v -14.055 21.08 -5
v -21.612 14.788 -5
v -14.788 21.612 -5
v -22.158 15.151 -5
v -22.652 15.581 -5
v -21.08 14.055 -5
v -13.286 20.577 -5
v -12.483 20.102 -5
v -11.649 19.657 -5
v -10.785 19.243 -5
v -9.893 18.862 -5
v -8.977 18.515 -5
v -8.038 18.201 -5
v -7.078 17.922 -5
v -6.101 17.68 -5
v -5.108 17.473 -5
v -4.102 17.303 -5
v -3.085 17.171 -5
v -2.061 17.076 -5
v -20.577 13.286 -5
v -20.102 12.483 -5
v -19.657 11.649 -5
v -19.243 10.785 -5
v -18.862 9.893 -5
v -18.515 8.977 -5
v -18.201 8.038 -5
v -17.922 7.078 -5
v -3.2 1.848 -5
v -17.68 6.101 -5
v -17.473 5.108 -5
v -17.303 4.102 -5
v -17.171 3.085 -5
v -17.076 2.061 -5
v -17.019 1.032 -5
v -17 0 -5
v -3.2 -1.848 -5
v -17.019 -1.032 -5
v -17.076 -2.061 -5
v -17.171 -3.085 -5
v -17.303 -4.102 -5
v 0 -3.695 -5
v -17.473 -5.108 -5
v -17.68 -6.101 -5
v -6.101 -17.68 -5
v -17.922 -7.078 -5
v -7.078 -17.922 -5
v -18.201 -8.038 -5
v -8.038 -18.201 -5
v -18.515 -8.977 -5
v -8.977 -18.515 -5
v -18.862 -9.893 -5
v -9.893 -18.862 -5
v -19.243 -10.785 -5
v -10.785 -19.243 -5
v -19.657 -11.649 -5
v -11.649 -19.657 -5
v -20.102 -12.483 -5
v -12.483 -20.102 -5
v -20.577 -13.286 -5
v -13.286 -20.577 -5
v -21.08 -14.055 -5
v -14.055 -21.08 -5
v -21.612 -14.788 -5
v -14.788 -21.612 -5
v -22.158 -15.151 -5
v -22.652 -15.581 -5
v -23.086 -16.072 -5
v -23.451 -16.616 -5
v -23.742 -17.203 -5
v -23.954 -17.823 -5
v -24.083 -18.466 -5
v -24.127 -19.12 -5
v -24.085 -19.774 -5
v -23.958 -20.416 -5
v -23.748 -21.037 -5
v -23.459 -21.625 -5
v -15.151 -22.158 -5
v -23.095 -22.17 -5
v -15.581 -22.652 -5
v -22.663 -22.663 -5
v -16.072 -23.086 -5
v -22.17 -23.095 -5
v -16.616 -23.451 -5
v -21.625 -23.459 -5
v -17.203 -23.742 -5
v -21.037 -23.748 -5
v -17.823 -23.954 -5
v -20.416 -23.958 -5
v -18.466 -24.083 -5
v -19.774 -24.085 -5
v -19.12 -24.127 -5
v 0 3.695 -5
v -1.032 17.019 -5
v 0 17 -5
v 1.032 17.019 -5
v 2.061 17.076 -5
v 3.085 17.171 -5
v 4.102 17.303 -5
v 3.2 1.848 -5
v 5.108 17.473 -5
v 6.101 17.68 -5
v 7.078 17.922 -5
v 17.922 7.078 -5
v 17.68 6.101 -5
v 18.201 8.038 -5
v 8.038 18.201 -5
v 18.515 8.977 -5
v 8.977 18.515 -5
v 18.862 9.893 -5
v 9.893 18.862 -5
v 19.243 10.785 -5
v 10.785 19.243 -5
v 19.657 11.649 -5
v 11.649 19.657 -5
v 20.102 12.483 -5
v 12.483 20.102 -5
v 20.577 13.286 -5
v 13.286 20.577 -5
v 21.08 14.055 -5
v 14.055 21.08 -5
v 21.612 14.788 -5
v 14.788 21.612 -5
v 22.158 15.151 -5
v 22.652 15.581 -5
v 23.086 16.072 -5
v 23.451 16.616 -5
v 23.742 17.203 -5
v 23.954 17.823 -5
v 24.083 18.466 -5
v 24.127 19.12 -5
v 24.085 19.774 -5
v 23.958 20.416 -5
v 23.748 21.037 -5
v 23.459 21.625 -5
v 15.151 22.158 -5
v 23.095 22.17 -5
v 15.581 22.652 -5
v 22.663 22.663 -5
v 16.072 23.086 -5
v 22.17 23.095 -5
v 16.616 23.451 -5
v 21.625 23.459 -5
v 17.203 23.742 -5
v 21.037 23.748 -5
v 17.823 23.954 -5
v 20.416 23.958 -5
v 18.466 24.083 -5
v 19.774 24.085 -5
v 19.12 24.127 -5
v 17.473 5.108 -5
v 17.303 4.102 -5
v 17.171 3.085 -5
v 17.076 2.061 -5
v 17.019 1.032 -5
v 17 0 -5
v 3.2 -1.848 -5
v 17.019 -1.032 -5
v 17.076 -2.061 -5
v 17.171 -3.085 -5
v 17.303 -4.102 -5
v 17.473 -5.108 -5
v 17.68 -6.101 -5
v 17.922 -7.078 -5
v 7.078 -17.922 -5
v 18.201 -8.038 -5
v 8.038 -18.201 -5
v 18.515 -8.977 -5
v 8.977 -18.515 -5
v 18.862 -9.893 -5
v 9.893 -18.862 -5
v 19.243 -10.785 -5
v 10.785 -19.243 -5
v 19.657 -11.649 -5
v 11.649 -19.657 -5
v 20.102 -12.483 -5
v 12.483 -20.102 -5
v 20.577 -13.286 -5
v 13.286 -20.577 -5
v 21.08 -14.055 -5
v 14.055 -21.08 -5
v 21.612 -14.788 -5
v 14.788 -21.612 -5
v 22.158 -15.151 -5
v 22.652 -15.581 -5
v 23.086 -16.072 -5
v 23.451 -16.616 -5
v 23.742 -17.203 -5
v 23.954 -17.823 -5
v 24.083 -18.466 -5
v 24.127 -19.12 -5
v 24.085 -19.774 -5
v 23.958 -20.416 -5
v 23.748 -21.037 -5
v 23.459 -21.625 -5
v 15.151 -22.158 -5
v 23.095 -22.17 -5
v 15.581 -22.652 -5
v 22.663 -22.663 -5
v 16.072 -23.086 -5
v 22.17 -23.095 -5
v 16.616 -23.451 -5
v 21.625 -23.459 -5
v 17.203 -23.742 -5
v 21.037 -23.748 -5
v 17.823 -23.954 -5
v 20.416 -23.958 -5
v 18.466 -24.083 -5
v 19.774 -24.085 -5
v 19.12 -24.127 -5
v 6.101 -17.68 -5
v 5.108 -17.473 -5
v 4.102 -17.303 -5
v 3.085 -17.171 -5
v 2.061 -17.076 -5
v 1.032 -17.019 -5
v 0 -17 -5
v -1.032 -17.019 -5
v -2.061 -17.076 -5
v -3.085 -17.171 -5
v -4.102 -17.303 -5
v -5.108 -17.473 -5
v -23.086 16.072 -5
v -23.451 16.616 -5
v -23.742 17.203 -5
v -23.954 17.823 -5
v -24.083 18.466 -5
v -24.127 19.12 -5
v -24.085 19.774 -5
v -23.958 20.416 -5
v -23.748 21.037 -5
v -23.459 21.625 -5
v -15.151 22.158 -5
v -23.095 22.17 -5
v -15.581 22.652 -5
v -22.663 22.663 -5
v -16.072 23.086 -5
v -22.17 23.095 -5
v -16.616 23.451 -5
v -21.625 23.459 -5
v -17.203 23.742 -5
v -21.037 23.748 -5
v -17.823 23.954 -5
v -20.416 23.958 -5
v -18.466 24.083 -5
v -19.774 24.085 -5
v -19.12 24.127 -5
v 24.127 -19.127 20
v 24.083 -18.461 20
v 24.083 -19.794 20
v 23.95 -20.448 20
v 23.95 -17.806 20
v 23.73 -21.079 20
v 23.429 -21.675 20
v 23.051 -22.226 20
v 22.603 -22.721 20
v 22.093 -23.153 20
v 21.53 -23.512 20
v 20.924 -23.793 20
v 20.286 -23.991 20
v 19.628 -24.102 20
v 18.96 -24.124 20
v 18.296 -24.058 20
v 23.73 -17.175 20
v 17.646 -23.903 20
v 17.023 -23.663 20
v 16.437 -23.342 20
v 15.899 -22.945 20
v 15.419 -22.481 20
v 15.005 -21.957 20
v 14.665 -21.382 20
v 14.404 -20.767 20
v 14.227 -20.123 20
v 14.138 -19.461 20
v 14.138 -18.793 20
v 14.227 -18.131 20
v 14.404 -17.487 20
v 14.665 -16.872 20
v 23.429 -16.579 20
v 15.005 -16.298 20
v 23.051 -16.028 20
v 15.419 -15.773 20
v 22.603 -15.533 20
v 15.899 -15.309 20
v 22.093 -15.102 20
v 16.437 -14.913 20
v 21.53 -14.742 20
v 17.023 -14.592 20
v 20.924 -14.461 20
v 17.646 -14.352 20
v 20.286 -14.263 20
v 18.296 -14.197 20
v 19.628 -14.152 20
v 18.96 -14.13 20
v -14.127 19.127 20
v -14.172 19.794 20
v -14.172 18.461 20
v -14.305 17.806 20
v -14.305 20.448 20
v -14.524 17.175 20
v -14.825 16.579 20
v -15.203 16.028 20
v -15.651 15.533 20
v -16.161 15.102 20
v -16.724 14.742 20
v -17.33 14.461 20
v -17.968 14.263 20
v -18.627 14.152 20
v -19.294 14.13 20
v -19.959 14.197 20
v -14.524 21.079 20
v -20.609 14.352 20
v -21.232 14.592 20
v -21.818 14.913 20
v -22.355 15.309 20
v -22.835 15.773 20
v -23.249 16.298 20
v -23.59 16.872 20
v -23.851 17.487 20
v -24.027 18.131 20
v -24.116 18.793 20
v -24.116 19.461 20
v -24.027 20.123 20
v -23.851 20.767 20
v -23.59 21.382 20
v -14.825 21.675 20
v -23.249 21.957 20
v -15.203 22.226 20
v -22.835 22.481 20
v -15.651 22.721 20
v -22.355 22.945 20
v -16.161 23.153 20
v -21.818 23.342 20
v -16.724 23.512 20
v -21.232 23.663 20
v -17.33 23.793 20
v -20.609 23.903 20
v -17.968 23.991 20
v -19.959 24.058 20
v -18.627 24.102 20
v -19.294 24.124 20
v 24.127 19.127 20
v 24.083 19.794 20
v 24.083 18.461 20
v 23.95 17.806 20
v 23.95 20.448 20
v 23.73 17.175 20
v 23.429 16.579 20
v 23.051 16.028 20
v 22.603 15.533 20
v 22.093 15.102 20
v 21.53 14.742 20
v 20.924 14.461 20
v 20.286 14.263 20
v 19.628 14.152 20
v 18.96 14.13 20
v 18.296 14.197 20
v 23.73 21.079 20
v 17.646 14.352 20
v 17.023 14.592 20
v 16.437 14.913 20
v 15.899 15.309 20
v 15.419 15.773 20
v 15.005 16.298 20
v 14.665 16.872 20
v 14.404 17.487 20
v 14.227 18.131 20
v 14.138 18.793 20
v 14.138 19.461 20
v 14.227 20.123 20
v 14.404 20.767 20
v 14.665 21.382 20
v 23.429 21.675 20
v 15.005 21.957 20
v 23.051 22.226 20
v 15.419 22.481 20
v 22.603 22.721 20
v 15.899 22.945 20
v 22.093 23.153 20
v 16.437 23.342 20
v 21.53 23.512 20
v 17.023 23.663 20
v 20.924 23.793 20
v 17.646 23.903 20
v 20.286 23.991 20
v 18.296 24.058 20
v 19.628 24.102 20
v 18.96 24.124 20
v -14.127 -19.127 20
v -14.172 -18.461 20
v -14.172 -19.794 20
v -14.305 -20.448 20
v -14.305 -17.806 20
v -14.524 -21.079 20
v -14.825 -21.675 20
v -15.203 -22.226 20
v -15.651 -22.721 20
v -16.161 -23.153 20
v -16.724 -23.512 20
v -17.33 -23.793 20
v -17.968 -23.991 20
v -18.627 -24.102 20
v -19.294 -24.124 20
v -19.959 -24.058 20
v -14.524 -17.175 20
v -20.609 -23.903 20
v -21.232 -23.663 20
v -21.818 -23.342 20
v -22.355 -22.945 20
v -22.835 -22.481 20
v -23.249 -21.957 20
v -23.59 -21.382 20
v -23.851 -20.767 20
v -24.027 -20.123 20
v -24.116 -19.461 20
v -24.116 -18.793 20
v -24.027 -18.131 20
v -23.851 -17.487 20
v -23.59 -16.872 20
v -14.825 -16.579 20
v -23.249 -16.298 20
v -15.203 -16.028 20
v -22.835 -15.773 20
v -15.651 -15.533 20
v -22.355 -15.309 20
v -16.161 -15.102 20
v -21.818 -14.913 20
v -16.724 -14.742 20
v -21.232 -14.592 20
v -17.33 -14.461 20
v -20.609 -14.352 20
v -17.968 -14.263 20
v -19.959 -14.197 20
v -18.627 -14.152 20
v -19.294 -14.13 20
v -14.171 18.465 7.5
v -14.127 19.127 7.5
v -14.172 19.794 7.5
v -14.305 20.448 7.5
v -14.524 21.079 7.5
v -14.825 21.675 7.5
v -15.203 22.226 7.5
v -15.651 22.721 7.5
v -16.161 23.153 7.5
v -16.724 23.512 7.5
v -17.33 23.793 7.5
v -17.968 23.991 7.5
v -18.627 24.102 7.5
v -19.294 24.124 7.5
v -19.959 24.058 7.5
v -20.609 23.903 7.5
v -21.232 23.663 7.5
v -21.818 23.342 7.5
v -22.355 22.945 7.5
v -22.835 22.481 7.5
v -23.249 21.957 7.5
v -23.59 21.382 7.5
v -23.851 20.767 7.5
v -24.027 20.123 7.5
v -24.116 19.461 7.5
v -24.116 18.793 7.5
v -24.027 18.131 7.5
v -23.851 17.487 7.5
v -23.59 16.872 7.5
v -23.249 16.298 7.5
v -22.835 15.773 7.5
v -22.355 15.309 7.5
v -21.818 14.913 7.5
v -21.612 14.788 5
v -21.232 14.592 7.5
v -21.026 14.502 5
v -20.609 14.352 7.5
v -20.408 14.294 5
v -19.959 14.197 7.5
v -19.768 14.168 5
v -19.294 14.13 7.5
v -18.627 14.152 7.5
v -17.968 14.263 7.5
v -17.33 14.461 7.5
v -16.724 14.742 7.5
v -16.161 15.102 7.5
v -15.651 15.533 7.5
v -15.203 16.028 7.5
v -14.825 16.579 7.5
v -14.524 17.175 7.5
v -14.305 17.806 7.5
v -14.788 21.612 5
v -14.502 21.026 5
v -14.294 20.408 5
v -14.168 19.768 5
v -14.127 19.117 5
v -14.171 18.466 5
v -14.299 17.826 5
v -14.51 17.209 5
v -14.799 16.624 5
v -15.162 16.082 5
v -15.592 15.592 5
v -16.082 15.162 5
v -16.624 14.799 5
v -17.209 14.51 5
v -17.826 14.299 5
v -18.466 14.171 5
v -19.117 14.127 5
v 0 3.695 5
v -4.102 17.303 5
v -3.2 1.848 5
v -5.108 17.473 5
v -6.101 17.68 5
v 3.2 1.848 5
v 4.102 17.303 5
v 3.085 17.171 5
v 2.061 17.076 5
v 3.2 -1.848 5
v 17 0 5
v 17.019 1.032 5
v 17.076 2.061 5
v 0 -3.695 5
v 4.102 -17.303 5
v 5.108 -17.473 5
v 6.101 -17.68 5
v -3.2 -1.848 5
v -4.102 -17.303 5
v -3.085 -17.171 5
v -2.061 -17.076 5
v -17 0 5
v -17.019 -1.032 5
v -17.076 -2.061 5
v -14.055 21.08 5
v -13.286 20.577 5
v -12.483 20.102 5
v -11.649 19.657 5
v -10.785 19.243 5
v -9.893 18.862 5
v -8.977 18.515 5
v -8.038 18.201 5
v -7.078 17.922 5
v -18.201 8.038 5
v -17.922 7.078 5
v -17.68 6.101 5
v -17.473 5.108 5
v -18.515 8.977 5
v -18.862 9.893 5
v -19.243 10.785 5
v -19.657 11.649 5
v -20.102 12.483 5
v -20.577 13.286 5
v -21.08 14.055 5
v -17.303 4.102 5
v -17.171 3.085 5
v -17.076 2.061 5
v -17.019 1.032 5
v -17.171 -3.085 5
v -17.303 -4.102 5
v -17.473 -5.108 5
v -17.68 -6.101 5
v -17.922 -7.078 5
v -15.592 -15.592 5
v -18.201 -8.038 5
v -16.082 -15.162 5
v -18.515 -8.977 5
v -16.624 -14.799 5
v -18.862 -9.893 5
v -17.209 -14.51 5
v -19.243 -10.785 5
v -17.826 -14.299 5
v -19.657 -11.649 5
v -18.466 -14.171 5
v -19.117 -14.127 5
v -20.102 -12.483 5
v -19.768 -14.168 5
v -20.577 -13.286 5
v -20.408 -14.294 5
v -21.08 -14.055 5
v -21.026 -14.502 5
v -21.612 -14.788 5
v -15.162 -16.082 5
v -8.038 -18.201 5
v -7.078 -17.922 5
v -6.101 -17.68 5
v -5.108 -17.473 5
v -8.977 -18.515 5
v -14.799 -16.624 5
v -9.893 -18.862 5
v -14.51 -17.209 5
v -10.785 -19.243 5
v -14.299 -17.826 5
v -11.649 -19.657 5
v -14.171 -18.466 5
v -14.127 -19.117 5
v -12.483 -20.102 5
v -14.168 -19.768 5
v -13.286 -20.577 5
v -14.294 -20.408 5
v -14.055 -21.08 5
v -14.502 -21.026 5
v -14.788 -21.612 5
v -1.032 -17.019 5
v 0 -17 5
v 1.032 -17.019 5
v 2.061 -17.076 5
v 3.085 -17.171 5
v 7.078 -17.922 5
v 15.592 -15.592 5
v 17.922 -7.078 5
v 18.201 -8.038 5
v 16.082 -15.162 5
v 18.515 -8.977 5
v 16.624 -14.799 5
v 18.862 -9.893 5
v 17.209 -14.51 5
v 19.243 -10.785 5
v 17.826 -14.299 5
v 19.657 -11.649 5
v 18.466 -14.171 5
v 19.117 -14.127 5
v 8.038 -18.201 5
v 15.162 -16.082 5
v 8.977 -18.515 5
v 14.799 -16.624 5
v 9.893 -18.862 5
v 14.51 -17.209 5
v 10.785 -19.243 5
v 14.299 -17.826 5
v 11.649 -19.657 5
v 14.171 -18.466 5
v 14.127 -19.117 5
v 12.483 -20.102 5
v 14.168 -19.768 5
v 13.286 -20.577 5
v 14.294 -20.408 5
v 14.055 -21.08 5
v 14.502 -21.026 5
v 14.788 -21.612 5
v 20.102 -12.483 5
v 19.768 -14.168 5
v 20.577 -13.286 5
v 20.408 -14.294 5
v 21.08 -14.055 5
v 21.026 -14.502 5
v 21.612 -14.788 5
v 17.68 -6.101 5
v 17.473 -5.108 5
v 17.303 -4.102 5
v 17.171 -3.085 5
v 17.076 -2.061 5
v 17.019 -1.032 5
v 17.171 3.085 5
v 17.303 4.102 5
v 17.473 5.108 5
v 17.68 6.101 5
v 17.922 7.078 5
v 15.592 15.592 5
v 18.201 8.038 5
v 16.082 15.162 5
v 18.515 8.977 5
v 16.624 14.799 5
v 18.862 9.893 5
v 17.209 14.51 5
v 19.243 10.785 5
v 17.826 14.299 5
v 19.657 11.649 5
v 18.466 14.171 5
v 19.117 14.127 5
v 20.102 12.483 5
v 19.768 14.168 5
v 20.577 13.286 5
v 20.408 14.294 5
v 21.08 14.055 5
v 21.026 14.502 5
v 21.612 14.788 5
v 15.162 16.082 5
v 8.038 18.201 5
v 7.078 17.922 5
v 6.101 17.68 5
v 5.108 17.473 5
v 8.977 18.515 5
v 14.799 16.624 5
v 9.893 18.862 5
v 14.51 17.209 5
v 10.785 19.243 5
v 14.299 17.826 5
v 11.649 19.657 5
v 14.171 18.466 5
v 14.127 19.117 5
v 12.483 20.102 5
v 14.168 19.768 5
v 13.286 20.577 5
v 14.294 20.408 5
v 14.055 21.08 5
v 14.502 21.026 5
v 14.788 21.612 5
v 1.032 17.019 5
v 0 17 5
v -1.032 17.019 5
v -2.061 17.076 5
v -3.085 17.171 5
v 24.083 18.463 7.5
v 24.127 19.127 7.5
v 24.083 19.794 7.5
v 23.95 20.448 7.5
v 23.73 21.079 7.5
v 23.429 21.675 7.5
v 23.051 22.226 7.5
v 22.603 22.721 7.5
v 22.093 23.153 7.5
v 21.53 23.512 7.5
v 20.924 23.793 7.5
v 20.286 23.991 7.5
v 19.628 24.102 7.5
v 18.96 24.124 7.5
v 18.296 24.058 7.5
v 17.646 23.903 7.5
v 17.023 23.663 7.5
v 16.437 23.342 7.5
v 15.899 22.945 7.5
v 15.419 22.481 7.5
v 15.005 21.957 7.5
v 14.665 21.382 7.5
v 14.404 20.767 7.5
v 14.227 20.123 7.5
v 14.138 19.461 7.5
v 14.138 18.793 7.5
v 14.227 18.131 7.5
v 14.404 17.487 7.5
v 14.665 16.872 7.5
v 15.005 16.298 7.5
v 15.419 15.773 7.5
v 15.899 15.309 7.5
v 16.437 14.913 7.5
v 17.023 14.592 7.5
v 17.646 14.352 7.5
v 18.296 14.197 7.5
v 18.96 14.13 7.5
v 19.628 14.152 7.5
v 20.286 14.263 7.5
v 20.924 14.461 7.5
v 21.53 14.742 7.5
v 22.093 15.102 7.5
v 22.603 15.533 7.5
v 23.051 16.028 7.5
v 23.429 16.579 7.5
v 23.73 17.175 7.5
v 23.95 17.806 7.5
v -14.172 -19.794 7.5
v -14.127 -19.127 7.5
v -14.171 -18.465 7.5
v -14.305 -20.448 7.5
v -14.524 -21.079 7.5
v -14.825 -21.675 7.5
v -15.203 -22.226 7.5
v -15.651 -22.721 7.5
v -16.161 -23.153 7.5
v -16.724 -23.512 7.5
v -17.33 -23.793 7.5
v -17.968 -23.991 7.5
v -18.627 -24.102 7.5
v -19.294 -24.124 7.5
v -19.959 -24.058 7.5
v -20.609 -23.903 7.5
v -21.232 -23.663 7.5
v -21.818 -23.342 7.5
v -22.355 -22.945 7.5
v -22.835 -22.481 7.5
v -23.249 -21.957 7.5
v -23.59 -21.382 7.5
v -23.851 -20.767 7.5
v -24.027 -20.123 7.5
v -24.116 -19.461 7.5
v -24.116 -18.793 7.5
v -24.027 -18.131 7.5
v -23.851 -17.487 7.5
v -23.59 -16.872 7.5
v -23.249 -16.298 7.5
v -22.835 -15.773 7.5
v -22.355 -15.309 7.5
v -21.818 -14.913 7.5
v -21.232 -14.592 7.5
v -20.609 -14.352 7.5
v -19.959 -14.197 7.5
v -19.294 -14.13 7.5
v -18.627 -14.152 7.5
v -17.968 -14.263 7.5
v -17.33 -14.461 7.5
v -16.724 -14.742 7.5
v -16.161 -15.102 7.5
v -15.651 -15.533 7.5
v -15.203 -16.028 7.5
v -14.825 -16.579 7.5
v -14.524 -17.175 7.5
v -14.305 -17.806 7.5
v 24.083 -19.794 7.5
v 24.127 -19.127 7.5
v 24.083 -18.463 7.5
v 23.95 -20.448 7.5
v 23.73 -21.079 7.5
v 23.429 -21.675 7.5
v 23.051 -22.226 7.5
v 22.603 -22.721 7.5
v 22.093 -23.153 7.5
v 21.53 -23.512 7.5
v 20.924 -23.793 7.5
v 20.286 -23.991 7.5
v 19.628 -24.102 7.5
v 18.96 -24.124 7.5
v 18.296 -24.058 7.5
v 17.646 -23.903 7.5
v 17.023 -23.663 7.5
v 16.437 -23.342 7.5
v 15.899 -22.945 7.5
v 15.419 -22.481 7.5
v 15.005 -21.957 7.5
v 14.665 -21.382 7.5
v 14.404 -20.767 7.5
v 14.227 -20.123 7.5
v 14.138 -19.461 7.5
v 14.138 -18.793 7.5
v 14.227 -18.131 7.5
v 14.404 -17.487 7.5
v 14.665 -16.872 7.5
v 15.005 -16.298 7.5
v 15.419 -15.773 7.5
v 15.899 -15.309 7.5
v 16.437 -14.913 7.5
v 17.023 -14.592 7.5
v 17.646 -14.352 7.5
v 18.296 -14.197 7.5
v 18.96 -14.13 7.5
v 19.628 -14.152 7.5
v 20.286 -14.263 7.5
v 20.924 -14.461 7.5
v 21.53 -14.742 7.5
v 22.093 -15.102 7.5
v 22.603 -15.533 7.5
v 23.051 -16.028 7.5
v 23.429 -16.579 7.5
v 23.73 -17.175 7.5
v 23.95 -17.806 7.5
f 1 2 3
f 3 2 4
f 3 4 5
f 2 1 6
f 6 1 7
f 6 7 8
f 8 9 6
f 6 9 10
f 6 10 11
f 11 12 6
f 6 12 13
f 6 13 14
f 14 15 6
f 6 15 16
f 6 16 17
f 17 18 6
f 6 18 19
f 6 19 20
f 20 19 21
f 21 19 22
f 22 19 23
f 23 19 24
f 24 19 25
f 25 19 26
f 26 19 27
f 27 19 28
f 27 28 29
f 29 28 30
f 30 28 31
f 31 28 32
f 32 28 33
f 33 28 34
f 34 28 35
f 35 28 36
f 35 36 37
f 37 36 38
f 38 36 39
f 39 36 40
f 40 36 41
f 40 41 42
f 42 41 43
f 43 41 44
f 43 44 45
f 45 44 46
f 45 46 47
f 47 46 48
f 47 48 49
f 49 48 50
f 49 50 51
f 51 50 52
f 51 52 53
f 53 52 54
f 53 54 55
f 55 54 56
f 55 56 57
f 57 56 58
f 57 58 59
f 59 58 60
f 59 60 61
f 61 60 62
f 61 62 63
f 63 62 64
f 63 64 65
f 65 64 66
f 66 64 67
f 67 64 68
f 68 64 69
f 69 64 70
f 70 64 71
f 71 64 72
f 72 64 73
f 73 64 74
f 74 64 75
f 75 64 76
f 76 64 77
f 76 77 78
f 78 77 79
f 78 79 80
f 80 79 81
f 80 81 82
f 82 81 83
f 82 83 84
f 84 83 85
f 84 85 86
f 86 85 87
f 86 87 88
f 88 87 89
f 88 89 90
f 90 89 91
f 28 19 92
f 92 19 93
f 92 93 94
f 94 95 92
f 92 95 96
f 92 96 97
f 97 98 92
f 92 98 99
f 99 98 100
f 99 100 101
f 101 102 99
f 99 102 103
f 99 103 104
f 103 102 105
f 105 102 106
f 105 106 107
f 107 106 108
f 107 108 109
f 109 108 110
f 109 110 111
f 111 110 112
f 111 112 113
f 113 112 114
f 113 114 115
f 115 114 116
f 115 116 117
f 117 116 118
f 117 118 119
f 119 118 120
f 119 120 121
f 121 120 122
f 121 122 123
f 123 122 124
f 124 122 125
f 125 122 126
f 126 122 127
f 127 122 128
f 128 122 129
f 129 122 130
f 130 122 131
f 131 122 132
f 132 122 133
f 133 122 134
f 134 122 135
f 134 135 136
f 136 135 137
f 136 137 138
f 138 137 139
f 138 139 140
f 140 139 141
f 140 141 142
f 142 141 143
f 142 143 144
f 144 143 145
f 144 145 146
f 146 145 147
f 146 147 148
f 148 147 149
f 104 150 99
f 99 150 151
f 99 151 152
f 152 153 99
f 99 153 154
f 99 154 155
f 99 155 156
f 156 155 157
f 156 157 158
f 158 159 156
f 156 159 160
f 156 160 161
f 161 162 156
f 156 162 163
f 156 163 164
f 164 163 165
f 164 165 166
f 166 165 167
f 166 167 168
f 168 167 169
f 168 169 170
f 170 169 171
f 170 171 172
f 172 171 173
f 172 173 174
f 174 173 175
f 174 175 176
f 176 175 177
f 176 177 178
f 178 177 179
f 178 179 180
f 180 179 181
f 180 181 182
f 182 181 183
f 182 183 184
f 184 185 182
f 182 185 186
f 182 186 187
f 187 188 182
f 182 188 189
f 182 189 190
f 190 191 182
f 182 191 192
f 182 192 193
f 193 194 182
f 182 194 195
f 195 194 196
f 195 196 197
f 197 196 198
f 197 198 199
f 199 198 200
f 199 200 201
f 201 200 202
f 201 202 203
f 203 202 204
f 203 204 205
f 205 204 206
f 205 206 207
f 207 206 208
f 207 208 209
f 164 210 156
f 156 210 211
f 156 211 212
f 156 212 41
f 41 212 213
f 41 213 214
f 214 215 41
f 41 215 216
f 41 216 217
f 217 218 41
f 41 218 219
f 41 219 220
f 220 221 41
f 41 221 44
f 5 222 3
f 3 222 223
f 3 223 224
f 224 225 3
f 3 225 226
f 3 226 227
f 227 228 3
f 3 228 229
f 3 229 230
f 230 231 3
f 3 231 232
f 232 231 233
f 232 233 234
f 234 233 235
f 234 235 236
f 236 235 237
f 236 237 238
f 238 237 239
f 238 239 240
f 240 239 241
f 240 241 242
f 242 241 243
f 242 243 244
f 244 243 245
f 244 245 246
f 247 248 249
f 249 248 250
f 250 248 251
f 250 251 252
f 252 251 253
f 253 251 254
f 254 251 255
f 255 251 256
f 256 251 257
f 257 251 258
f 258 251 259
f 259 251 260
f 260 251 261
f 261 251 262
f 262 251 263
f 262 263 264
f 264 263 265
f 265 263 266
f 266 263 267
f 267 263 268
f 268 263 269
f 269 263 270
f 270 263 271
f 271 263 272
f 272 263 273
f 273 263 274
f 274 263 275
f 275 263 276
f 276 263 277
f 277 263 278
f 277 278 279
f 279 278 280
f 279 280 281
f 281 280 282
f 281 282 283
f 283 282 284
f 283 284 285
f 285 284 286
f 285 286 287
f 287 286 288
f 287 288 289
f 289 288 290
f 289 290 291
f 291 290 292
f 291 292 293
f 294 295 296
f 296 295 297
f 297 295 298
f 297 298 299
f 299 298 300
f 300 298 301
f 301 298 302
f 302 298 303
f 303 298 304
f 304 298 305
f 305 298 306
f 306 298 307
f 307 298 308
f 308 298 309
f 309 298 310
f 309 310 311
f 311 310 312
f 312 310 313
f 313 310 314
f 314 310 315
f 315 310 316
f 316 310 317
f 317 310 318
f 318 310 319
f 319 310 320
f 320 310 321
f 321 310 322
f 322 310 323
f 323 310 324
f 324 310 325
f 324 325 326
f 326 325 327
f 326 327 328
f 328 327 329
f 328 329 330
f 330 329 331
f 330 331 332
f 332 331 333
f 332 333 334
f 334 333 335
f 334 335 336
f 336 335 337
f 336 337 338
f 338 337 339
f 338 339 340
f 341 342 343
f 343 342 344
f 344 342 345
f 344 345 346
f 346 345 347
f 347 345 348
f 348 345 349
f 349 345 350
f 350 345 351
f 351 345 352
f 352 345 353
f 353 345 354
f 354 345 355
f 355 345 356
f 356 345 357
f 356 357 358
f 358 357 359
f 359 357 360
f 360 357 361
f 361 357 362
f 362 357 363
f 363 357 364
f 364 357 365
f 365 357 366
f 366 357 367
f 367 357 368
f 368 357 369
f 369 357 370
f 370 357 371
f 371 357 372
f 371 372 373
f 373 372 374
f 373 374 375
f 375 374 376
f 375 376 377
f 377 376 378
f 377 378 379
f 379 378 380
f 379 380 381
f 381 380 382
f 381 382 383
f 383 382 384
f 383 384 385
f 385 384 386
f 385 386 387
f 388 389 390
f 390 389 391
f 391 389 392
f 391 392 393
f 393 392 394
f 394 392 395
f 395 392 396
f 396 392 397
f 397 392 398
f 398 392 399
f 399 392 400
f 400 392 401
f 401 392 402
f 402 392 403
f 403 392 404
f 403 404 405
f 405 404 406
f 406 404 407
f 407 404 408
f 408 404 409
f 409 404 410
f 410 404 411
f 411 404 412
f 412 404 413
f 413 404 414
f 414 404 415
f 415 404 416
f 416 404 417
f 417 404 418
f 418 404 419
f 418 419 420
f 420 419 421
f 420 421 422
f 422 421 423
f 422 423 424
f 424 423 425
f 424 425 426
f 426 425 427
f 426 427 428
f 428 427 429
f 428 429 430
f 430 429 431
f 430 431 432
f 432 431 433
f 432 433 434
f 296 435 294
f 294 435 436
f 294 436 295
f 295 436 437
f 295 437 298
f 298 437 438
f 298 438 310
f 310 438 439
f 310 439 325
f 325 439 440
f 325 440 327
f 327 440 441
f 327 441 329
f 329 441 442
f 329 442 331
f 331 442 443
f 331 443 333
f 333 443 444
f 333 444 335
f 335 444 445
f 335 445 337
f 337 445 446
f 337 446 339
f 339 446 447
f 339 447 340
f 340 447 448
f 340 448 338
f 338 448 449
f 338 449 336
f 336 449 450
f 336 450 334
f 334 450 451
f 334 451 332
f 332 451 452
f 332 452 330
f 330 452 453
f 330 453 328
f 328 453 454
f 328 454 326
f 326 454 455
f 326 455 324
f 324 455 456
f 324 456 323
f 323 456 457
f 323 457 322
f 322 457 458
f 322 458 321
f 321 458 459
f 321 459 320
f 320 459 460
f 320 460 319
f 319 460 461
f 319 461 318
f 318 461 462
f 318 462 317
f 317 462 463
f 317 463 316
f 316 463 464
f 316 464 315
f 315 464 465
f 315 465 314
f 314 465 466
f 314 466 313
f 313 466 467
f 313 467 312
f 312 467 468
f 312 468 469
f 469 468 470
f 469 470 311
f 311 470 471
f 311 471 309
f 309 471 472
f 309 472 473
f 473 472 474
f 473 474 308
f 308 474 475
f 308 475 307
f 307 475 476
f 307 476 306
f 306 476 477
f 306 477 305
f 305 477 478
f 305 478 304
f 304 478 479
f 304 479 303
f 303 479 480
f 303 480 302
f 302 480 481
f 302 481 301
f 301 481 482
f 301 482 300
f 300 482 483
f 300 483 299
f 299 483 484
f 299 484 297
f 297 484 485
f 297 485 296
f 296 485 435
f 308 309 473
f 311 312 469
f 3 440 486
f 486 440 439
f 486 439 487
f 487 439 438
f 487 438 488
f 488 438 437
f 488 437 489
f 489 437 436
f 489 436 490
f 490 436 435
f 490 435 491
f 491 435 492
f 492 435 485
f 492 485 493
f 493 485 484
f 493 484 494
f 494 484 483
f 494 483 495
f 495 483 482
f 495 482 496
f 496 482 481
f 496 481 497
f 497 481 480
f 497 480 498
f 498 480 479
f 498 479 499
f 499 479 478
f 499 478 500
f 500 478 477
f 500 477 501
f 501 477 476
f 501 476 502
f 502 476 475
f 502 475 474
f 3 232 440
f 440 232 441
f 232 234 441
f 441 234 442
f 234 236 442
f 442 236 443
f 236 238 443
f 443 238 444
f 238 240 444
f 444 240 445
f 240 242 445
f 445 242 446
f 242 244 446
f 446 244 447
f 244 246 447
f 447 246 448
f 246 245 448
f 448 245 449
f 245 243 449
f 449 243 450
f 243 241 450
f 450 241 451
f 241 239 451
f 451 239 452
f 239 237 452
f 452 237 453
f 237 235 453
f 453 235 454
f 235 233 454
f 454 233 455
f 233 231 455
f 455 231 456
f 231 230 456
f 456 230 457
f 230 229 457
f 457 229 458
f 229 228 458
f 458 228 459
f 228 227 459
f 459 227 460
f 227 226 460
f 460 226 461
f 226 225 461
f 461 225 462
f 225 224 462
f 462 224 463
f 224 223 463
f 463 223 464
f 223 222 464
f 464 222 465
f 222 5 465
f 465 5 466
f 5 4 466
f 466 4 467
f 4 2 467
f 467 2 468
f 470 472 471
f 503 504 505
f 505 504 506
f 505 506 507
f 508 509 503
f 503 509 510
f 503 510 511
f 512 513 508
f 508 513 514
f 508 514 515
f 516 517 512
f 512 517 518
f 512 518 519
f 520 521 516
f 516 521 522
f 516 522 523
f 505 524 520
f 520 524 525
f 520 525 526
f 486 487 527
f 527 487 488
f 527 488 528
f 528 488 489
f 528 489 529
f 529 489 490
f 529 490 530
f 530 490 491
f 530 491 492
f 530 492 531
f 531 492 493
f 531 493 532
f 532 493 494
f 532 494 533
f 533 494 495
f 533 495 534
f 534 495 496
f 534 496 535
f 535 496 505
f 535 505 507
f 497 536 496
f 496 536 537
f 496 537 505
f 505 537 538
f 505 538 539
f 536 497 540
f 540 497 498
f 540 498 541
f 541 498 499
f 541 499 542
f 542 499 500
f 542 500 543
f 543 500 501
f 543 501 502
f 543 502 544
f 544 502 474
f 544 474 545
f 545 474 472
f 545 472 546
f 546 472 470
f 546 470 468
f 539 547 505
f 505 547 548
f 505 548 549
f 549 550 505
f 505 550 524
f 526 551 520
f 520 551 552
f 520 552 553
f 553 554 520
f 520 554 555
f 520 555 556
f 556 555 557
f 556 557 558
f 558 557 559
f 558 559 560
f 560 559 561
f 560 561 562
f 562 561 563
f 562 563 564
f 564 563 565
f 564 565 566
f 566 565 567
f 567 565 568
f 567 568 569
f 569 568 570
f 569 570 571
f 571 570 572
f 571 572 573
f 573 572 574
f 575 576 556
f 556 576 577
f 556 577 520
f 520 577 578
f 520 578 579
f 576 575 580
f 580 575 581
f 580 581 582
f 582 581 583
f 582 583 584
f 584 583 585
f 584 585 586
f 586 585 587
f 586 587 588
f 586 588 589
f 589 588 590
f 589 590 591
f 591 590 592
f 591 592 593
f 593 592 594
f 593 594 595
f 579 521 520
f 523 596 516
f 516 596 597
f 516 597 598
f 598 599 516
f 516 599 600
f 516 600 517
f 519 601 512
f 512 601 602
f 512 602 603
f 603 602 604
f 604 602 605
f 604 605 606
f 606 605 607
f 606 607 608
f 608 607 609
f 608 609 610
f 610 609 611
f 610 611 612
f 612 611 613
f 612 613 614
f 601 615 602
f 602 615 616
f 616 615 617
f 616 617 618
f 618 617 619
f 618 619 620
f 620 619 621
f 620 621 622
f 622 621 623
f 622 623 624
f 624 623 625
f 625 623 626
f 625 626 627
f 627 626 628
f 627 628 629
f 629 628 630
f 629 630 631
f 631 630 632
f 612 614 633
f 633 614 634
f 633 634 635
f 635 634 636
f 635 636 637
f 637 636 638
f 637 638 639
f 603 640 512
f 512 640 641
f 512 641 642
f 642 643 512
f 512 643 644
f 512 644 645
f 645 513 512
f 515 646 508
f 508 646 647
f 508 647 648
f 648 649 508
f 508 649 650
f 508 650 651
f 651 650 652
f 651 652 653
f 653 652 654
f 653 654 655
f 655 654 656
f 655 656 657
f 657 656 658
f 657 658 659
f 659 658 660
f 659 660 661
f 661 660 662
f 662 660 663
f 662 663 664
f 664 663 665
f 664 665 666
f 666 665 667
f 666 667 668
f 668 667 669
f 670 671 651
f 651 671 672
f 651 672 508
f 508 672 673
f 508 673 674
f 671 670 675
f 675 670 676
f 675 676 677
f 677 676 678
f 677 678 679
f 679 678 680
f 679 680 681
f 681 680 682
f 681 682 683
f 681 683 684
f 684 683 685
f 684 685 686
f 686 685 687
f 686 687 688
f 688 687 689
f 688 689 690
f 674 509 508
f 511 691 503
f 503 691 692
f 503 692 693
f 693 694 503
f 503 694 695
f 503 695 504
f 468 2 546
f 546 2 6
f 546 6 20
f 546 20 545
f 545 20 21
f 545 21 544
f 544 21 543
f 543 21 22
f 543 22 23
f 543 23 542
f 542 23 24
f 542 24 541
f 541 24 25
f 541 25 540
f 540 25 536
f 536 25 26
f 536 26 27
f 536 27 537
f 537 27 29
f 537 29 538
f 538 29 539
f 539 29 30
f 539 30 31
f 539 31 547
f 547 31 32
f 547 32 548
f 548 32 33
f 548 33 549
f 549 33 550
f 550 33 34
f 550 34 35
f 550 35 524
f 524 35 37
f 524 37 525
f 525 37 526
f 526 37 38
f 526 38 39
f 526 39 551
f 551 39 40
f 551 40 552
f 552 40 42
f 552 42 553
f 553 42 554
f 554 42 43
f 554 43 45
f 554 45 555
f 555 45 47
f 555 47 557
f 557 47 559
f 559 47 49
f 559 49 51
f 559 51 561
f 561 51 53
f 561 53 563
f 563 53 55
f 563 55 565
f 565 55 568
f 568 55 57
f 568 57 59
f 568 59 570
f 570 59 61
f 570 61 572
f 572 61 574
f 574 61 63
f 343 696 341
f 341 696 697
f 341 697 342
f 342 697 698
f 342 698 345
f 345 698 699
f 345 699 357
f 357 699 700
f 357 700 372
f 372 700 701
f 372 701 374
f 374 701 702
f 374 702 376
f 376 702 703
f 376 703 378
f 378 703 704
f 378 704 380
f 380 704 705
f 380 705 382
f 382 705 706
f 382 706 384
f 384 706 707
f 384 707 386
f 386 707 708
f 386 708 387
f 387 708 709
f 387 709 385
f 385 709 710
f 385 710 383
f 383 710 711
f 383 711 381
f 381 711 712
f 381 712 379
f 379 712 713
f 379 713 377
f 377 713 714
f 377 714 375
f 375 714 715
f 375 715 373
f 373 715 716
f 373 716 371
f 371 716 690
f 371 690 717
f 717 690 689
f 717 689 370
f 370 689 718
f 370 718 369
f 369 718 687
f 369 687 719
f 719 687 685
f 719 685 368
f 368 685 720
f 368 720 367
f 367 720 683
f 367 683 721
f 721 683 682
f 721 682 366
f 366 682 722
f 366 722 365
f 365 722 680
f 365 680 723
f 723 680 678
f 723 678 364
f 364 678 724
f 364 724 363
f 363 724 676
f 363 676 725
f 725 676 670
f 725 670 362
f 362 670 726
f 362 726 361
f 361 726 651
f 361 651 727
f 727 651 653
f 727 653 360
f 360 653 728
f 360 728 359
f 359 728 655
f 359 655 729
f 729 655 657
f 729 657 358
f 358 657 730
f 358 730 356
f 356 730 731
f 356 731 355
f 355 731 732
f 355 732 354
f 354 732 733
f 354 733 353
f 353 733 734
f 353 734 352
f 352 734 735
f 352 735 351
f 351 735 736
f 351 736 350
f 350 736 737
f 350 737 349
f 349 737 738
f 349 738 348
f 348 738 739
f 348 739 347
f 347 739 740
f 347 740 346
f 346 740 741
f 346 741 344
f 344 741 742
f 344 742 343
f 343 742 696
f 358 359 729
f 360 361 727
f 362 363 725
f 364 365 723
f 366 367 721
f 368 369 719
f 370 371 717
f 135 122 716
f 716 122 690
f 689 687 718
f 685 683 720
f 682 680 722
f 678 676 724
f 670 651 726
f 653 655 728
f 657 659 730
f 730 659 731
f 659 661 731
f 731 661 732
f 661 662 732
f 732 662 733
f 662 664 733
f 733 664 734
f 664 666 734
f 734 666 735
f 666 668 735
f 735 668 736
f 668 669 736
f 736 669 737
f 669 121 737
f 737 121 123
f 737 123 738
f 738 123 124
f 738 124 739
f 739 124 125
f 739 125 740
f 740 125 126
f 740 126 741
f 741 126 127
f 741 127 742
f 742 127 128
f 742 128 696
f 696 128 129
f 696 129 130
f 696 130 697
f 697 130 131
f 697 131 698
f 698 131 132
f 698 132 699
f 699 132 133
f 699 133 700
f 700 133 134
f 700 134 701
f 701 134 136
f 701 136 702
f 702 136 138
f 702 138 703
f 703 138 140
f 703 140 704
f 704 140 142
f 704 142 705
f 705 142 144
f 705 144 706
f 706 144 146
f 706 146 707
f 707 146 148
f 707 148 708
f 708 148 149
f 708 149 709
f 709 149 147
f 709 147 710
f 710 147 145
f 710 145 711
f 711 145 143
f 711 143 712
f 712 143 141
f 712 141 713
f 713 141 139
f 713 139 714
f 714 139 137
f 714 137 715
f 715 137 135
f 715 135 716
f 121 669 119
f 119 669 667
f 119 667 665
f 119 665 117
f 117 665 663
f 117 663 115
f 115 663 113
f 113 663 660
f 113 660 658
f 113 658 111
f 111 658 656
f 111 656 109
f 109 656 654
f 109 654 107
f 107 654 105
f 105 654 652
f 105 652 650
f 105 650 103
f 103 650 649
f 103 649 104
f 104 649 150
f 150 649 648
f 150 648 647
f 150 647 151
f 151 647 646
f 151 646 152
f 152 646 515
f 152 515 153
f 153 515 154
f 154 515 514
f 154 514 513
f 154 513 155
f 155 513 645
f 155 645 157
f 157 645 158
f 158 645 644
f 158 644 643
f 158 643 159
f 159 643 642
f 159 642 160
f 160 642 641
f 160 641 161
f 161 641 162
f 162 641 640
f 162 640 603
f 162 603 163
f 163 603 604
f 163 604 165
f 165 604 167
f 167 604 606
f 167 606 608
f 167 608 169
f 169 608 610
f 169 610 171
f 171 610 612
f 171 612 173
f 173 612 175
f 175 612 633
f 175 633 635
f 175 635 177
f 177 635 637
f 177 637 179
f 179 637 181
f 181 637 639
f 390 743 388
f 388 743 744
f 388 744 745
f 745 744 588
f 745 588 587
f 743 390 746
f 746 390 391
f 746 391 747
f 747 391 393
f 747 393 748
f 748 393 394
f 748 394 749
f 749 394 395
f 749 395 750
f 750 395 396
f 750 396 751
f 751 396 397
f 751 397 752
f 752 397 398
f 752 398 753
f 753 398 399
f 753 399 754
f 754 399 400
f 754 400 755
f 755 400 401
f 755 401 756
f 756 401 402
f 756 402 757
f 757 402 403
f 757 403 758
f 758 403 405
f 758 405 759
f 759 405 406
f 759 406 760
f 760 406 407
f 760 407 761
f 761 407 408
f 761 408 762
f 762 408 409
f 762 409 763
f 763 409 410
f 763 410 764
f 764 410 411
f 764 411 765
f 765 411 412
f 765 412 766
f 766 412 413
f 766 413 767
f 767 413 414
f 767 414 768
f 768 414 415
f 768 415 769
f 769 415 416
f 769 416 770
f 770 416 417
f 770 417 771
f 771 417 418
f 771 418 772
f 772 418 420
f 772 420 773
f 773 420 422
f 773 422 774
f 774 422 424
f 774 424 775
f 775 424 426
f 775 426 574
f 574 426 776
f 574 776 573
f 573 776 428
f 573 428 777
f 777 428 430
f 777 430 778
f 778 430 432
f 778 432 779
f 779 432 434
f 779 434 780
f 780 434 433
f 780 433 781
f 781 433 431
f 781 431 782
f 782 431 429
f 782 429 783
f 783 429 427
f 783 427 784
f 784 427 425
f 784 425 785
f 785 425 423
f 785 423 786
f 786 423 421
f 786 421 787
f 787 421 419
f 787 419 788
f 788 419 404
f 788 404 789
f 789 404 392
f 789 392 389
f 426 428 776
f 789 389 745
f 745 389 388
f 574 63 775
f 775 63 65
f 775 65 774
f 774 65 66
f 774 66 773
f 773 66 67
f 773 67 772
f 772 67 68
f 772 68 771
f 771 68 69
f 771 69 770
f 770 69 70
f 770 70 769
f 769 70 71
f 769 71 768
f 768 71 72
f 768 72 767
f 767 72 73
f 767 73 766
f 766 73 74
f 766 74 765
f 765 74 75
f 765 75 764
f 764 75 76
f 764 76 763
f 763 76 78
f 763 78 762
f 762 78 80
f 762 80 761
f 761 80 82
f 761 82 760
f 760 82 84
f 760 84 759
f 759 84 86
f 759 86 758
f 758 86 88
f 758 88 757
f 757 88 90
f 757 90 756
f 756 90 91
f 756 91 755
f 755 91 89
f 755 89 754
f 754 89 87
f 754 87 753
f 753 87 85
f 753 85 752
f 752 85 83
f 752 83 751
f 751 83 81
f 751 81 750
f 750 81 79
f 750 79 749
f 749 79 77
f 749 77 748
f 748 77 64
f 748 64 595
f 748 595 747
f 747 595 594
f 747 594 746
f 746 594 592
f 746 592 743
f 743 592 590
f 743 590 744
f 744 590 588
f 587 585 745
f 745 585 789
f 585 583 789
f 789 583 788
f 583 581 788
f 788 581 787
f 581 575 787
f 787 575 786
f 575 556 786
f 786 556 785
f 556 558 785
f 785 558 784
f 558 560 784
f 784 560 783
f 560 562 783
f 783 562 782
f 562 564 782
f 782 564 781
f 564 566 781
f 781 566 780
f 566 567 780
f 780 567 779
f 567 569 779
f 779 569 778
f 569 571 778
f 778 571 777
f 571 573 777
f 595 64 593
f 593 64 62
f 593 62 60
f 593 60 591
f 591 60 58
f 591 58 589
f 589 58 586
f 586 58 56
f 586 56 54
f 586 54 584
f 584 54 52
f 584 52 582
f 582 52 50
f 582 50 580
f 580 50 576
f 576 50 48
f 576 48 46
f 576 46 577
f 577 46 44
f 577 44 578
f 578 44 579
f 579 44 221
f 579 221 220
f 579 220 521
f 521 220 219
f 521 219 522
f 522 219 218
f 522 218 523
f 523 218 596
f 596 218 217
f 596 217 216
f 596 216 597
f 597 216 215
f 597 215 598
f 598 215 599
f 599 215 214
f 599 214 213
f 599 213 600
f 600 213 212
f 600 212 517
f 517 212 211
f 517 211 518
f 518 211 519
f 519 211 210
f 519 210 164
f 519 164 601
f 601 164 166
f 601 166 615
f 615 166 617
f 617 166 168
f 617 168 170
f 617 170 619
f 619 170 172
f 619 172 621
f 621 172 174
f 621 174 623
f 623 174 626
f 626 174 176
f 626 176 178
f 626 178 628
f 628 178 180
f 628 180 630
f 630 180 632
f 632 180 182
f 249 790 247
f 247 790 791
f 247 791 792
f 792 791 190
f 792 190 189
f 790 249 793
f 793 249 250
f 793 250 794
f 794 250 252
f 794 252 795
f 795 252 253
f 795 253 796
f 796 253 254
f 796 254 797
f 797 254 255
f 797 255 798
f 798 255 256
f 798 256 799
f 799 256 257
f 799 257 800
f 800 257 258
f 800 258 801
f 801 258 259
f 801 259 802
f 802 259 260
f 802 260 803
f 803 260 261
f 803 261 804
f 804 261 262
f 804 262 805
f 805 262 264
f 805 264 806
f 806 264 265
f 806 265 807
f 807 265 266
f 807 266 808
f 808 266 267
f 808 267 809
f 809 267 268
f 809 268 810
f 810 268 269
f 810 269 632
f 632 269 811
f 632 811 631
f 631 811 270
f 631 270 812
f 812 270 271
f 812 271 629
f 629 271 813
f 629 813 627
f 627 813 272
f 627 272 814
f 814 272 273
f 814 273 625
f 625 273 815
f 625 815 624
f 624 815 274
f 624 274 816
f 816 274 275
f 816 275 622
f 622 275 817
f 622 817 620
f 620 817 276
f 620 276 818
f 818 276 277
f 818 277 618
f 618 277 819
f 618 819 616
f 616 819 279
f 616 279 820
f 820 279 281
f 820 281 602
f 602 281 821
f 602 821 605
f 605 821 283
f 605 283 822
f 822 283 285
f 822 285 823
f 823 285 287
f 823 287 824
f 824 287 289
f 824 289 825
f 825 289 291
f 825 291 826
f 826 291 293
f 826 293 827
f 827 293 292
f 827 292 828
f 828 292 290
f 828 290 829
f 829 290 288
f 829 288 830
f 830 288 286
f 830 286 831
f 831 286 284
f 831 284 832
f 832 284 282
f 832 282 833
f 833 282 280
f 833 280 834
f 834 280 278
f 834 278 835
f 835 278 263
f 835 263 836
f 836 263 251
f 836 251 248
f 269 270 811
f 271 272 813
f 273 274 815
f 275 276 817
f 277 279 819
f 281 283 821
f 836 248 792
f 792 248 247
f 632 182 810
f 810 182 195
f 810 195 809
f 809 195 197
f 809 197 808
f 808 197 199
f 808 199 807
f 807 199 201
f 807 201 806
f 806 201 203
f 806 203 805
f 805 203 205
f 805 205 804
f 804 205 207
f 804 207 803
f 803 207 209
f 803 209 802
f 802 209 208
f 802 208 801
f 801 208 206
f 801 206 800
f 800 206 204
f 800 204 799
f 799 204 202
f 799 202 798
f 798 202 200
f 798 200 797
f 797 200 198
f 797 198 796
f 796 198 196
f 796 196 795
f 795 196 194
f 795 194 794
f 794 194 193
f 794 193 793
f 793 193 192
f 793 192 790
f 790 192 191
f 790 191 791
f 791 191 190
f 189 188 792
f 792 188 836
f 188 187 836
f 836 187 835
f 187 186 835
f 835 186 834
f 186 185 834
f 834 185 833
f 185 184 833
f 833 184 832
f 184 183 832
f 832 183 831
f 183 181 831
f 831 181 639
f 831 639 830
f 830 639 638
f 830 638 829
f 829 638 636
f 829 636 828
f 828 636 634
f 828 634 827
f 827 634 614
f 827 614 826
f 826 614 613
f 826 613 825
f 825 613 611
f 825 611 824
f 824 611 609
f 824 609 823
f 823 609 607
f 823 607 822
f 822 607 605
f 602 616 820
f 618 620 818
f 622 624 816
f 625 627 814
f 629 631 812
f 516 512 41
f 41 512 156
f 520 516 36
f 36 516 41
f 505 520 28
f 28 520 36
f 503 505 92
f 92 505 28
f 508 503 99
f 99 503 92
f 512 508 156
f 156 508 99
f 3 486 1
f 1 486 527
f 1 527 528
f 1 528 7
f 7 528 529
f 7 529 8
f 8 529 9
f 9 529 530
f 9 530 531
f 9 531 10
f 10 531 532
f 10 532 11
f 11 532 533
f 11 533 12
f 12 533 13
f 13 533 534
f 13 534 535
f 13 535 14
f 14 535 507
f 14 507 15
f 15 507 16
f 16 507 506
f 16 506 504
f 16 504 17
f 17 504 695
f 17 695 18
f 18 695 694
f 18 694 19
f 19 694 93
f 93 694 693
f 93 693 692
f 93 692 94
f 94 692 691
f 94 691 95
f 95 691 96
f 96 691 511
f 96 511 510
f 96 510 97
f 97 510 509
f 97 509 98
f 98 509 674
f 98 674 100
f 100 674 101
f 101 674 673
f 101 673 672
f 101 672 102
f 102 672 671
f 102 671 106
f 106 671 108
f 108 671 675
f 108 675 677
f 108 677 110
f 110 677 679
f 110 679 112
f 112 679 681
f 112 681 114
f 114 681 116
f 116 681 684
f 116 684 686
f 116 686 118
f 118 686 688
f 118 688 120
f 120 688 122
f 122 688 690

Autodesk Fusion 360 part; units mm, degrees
sketch "草图1" plane through (0, 0, 0) normal (0, 0, 1) x (1, 0, 0) in component "spinner with 4 wheel v3"
  circle A0 centre (-19.1272, 19.1272) radius 4.95
  circle A1 centre (19.1272, 19.1272) radius 4.95
  circle A2 centre (19.1272, -19.1272) radius 4.95
  circle A3 centre (-19.1272, -19.1272) radius 4.95
  ellipse E0 centre (32, 0) end of major axis (47, 0) minor radius 20.5 (21.6933, 14.8943) -> (21.6933, -14.8943) ccw
  ellipse E1 centre (0, 32) end of major axis (0, 47) minor radius 20.5 (-14.8943, 21.6933) -> (14.8943, 21.6933) ccw
  line L0 (0, 41) -> (0, 70)
  line L1 (0, -47) -> (0, -70)
  ellipse E2 centre (-32, 0) end of major axis (-17, 0) minor radius 20.5 (-21.6933, -14.8943) -> (-21.6933, 14.8943) ccw
  ellipse E3 centre (0, -32) end of major axis (0, -17) minor radius 20.5 (14.8943, -21.6933) -> (-14.8943, -21.6933) ccw
  line L2 (3.25, 1.8764) -> (0, 3.7528)
  line L3 (0, 3.7528) -> (-3.25, 1.8764)
  line L4 (-3.25, 1.8764) -> (-3.25, -1.8764)
  line L5 (-3.25, -1.8764) -> (0, -3.7528)
  line L6 (0, -3.7528) -> (3.25, -1.8764)
  line L7 (3.25, -1.8764) -> (3.25, 1.8764)
  line L8 (30, -20) -> (19.1272, -19.1272)
  dimension "d5" = 9.9
  dimension "d6" = 9.9
  dimension "d7" = 9.9
  dimension "d8" = 9.9
  dimension "d9" = 30
  dimension "d10" = 41
  dimension "d15" = 30
  dimension "d16" = 41
  dimension "d17" = 3.25
extrude "拉伸1" add sketch "草图1" along normal blind 5 in component "spinner with 4 wheel v3"
sketch "草图2" plane through (0, 0, 5) normal (0, 0, 1) x (-1, 0, 0) in component "spinner with 4 wheel v3"
  line L0 (-3.25, -1.8764) -> (-3.25, 1.8764)
  line L1 (-3.25, 1.8764) -> (0, 3.7528)
  line L2 (0, 3.7528) -> (3.25, 1.8764)
  line L3 (3.25, 1.8764) -> (3.25, -1.8764)
  line L4 (3.25, -1.8764) -> (0, -3.7528)
  line L5 (0, -3.7528) -> (-3.25, -1.8764)
  ellipse E0 centre (0, 32) end of major axis (20.5, 32) minor radius 15 (-14.8943, 21.6933) -> (14.8943, 21.6933) ccw
  arc A0 (-14.8943, 21.6933) -> (-21.6933, 14.8943) centre (-19.1272, 19.1272) ccw
  ellipse E1 centre (-32, 0) end of major axis (-32, -20.5) minor radius 15 (-21.6933, -14.8943) -> (-21.6933, 14.8943) ccw
  arc A1 (-21.6933, -14.8943) -> (-14.8943, -21.6933) centre (-19.1272, -19.1272) ccw
  ellipse E2 centre (0, -32) end of major axis (20.5, -32) minor radius 15 (14.8943, -21.6933) -> (-14.8943, -21.6933) ccw
  arc A2 (14.8943, -21.6933) -> (21.6933, -14.8943) centre (19.1272, -19.1272) ccw
  ellipse E3 centre (32, 0) end of major axis (32, -20.5) minor radius 15 (21.6933, 14.8943) -> (21.6933, -14.8943) ccw
  arc A3 (21.6933, 14.8943) -> (14.8943, 21.6933) centre (19.1272, 19.1272) ccw
  circle A4 centre (-19.1272, -19.1272) radius 4.95
  circle A5 centre (19.1272, -19.1272) radius 4.95
  circle A6 centre (19.1272, 19.1272) radius 4.95
  circle A7 centre (-19.1272, 19.1272) radius 4.95
  dimension "d20" = 9.9
  dimension "d21" = 4.95
  dimension "d22" = 9.9
  dimension "d23" = 4.95
extrude "拉伸2" add sketch "草图2" along normal blind 7 contours A0 A7 | A3 A6 | A1 A4 | A2 A5 in component "spinner with 4 wheel v3"
sketch "草图3" plane through (0, 0, 5) normal (0, 0, 1) x (-1, 0, 0) in component "spinner with 4 wheel v3"
  arc A0 (-14.8943, -21.6933) -> (-21.6933, -14.8943) centre (-19.1272, -19.1272) ccw
  ellipse E0 centre (0, -32) end of major axis (20.5, -32) minor radius 15 (14.8943, -21.6933) -> (-14.8943, -21.6933) ccw
  arc A1 (21.6933, -14.8943) -> (14.8943, -21.6933) centre (19.1272, -19.1272) ccw
  ellipse E1 centre (32, 0) end of major axis (32, -20.5) minor radius 15 (21.6933, 14.8943) -> (21.6933, -14.8943) ccw
  arc A2 (14.8943, 21.6933) -> (21.6933, 14.8943) centre (19.1272, 19.1272) ccw
  ellipse E2 centre (0, 32) end of major axis (20.5, 32) minor radius 15 (-14.8943, 21.6933) -> (14.8943, 21.6933) ccw
  arc A3 (-21.6933, 14.8943) -> (-14.8943, 21.6933) centre (-19.1272, 19.1272) ccw
  ellipse E3 centre (-32, 0) end of major axis (-32, -20.5) minor radius 15 (-21.6933, -14.8943) -> (-21.6933, 14.8943) ccw
  line L0 (-3.25, -1.8764) -> (-3.25, 1.8764)
  line L1 (-3.25, 1.8764) -> (0, 3.7528)
  line L2 (0, 3.7528) -> (3.25, 1.8764)
  line L3 (3.25, 1.8764) -> (3.25, -1.8764)
  line L4 (3.25, -1.8764) -> (0, -3.7528)
  line L5 (0, -3.7528) -> (-3.25, -1.8764)
  line L6 (-3.25, -1.8764) -> (0, -3.7528)
  line L7 (0, -3.7528) -> (3.25, -1.8764)
  line L8 (3.25, -1.8764) -> (3.25, 1.8764)
  line L9 (3.25, 1.8764) -> (0, 3.7528)
  line L10 (0, 3.7528) -> (-3.25, 1.8764)
  line L11 (-3.25, 1.8764) -> (-3.25, -1.8764)
extrude "拉伸3" add sketch "草图3" against normal blind 2 contours L0 L1 L2 L3 L4 L5 L6 L7 L8 L9 L10 L11 in component "spinner with 4 wheel v3"
sketch "草图4" plane through (0, 0, 5) normal (0, 0, 1) x (-1, 0, 0) in component "spinner with 4 wheel v3"
  arc A0 (-14.8943, -21.6933) -> (-21.6933, -14.8943) centre (-19.1272, -19.1272) ccw
  ellipse E0 centre (0, -32) end of major axis (20.5, -32) minor radius 15 (14.8943, -21.6933) -> (-14.8943, -21.6933) ccw
  arc A1 (21.6933, -14.8943) -> (14.8943, -21.6933) centre (19.1272, -19.1272) ccw
  ellipse E1 centre (32, 0) end of major axis (32, -20.5) minor radius 15 (21.6933, 14.8943) -> (21.6933, -14.8943) ccw
  arc A2 (14.8943, 21.6933) -> (21.6933, 14.8943) centre (19.1272, 19.1272) ccw
  ellipse E2 centre (0, 32) end of major axis (20.5, 32) minor radius 15 (-14.8943, 21.6933) -> (14.8943, 21.6933) ccw
  arc A3 (-21.6933, 14.8943) -> (-14.8943, 21.6933) centre (-19.1272, 19.1272) ccw
  ellipse E3 centre (-32, 0) end of major axis (-32, -20.5) minor radius 15 (-21.6933, -14.8943) -> (-21.6933, 14.8943) ccw
  circle A4 centre (0, 0) radius 2
extrude "拉伸4" add sketch "草图4" along normal blind 15 contours A4 in component "spinner with 4 wheel v3"
sketch "草图5" plane through (0, 0, 0) normal (0, 0, 1) x (1, 0, 0) in component "spinner with 4 wheel v3"
extrude "拉伸5" add 1 faces at (1.0833, -0.6255, 3) along direction (0, 0, -1) blind 3 in component "spinner with 4 wheel v3"
sketch "草图6" plane through (0, 0, 0) normal (0, 0, 1) x (1, 0, 0) in component "spinner with 4 wheel v3"
  line L0 (-3.2, -1.8475) -> (0, -3.695)
  line L1 (0, -3.695) -> (3.2, -1.8475)
  line L2 (3.2, -1.8475) -> (3.2, 1.8475)
  line L3 (3.2, 1.8475) -> (0, 3.695)
  line L4 (0, 3.695) -> (-3.2, 1.8475)
  line L5 (-3.2, 1.8475) -> (-3.2, -1.8475)
  dimension "d32" = 3.2
extrude "拉伸6" cut sketch "草图6" along normal blind 22 in component "spinner with 4 wheel v3"
sketch "草图7" plane through (0, 0, 0) normal (1, 0, 0) x (0, 1, 0) in component "spinner with 4 wheel v3"
extrude "拉伸7" cut 4 faces at (18.1573, 20.0862, 12) (16.979, -18.0927, 12) (-17.5166, -19.4446, 12) (-20.5586, 20.6052, 12) along direction (0, 0, -1) blind 12 in component "spinner with 4 wheel v3"
sketch "草图8" plane through (0, 0, 5) normal (0, 0, 1) x (-1, 0, 0) in component "spinner with 4 wheel v3"
  arc A0 (-14.8943, -21.6933) -> (-21.6933, -14.8943) centre (-19.1272, -19.1272) ccw
  ellipse E0 centre (0, -32) end of major axis (20.5, -32) minor radius 15 (14.8943, -21.6933) -> (-14.8943, -21.6933) ccw
  arc A1 (21.6933, -14.8943) -> (14.8943, -21.6933) centre (19.1272, -19.1272) ccw
  ellipse E1 centre (32, 0) end of major axis (32, -20.5) minor radius 15 (21.6933, 14.8943) -> (21.6933, -14.8943) ccw
  arc A2 (14.8943, 21.6933) -> (21.6933, 14.8943) centre (19.1272, 19.1272) ccw
  ellipse E2 centre (0, 32) end of major axis (20.5, 32) minor radius 15 (-14.8943, 21.6933) -> (14.8943, 21.6933) ccw
  arc A3 (-21.6933, 14.8943) -> (-14.8943, 21.6933) centre (-19.1272, 19.1272) ccw
  ellipse E3 centre (-32, 0) end of major axis (-32, -20.5) minor radius 15 (-21.6933, -14.8943) -> (-21.6933, 14.8943) ccw
  circle A4 centre (-19.1272, 19.1272) radius 5
  circle A5 centre (-19.1272, -19.1272) radius 5
  circle A6 centre (19.1272, 19.1272) radius 5
  circle A7 centre (19.1272, -19.1272) radius 5
  line L0 (3.2, -1.8475) -> (0, -3.695)
  line L1 (0, -3.695) -> (-3.2, -1.8475)
  line L2 (-3.2, -1.8475) -> (-3.2, 1.8475)
  line L3 (-3.2, 1.8475) -> (0, 3.695)
  line L4 (0, 3.695) -> (3.2, 1.8475)
  line L5 (3.2, 1.8475) -> (3.2, -1.8475)
  dimension "d37" = 4.95
  dimension "d38" = 4.95
  dimension "d39" = 4.95
  dimension "d40" = 4.95
  dimension "d41" = 10
  dimension "d42" = 10
  dimension "d43" = 10
  dimension "d44" = 10
extrude "拉伸8" add sketch "草图8" along normal blind -5 and the other way blind -7 contours A0 E0 E3 A5 | A0 E0 E3 A5 | E0 A1 E1 A7 | E0 A1 E1 A7 | E2 A3 E3 A4 | E2 A3 E3 A4 | E1 A2 E2 A6 | E1 A2 E2 A6 in component "spinner with 4 wheel v3"
extrude "拉伸9" add 4 faces at (20.5783, 17.6971, 12) (-17.6037, 17.7136, 12) (-20.6618, -20.4674, 12) (18.5183, -20.4625, 12) along direction (0, 0, 1) blind 8 in component "spinner with 4 wheel v3"
extrude "拉伸10" add 1 faces at (9.8129, -9.3621, 0) along direction (0, 0, -1) blind 5 in component "spinner with 4 wheel v3"
sketch "草图1 (2)" plane through (0, 0, 0) normal (1, 0, 0) x (0, 1, 0)
component "spinner with 4 wheel v3" placed x (1, 0, 0) y (0, 1, 0) z (0, 0, 1) at (0, 0, 0)
